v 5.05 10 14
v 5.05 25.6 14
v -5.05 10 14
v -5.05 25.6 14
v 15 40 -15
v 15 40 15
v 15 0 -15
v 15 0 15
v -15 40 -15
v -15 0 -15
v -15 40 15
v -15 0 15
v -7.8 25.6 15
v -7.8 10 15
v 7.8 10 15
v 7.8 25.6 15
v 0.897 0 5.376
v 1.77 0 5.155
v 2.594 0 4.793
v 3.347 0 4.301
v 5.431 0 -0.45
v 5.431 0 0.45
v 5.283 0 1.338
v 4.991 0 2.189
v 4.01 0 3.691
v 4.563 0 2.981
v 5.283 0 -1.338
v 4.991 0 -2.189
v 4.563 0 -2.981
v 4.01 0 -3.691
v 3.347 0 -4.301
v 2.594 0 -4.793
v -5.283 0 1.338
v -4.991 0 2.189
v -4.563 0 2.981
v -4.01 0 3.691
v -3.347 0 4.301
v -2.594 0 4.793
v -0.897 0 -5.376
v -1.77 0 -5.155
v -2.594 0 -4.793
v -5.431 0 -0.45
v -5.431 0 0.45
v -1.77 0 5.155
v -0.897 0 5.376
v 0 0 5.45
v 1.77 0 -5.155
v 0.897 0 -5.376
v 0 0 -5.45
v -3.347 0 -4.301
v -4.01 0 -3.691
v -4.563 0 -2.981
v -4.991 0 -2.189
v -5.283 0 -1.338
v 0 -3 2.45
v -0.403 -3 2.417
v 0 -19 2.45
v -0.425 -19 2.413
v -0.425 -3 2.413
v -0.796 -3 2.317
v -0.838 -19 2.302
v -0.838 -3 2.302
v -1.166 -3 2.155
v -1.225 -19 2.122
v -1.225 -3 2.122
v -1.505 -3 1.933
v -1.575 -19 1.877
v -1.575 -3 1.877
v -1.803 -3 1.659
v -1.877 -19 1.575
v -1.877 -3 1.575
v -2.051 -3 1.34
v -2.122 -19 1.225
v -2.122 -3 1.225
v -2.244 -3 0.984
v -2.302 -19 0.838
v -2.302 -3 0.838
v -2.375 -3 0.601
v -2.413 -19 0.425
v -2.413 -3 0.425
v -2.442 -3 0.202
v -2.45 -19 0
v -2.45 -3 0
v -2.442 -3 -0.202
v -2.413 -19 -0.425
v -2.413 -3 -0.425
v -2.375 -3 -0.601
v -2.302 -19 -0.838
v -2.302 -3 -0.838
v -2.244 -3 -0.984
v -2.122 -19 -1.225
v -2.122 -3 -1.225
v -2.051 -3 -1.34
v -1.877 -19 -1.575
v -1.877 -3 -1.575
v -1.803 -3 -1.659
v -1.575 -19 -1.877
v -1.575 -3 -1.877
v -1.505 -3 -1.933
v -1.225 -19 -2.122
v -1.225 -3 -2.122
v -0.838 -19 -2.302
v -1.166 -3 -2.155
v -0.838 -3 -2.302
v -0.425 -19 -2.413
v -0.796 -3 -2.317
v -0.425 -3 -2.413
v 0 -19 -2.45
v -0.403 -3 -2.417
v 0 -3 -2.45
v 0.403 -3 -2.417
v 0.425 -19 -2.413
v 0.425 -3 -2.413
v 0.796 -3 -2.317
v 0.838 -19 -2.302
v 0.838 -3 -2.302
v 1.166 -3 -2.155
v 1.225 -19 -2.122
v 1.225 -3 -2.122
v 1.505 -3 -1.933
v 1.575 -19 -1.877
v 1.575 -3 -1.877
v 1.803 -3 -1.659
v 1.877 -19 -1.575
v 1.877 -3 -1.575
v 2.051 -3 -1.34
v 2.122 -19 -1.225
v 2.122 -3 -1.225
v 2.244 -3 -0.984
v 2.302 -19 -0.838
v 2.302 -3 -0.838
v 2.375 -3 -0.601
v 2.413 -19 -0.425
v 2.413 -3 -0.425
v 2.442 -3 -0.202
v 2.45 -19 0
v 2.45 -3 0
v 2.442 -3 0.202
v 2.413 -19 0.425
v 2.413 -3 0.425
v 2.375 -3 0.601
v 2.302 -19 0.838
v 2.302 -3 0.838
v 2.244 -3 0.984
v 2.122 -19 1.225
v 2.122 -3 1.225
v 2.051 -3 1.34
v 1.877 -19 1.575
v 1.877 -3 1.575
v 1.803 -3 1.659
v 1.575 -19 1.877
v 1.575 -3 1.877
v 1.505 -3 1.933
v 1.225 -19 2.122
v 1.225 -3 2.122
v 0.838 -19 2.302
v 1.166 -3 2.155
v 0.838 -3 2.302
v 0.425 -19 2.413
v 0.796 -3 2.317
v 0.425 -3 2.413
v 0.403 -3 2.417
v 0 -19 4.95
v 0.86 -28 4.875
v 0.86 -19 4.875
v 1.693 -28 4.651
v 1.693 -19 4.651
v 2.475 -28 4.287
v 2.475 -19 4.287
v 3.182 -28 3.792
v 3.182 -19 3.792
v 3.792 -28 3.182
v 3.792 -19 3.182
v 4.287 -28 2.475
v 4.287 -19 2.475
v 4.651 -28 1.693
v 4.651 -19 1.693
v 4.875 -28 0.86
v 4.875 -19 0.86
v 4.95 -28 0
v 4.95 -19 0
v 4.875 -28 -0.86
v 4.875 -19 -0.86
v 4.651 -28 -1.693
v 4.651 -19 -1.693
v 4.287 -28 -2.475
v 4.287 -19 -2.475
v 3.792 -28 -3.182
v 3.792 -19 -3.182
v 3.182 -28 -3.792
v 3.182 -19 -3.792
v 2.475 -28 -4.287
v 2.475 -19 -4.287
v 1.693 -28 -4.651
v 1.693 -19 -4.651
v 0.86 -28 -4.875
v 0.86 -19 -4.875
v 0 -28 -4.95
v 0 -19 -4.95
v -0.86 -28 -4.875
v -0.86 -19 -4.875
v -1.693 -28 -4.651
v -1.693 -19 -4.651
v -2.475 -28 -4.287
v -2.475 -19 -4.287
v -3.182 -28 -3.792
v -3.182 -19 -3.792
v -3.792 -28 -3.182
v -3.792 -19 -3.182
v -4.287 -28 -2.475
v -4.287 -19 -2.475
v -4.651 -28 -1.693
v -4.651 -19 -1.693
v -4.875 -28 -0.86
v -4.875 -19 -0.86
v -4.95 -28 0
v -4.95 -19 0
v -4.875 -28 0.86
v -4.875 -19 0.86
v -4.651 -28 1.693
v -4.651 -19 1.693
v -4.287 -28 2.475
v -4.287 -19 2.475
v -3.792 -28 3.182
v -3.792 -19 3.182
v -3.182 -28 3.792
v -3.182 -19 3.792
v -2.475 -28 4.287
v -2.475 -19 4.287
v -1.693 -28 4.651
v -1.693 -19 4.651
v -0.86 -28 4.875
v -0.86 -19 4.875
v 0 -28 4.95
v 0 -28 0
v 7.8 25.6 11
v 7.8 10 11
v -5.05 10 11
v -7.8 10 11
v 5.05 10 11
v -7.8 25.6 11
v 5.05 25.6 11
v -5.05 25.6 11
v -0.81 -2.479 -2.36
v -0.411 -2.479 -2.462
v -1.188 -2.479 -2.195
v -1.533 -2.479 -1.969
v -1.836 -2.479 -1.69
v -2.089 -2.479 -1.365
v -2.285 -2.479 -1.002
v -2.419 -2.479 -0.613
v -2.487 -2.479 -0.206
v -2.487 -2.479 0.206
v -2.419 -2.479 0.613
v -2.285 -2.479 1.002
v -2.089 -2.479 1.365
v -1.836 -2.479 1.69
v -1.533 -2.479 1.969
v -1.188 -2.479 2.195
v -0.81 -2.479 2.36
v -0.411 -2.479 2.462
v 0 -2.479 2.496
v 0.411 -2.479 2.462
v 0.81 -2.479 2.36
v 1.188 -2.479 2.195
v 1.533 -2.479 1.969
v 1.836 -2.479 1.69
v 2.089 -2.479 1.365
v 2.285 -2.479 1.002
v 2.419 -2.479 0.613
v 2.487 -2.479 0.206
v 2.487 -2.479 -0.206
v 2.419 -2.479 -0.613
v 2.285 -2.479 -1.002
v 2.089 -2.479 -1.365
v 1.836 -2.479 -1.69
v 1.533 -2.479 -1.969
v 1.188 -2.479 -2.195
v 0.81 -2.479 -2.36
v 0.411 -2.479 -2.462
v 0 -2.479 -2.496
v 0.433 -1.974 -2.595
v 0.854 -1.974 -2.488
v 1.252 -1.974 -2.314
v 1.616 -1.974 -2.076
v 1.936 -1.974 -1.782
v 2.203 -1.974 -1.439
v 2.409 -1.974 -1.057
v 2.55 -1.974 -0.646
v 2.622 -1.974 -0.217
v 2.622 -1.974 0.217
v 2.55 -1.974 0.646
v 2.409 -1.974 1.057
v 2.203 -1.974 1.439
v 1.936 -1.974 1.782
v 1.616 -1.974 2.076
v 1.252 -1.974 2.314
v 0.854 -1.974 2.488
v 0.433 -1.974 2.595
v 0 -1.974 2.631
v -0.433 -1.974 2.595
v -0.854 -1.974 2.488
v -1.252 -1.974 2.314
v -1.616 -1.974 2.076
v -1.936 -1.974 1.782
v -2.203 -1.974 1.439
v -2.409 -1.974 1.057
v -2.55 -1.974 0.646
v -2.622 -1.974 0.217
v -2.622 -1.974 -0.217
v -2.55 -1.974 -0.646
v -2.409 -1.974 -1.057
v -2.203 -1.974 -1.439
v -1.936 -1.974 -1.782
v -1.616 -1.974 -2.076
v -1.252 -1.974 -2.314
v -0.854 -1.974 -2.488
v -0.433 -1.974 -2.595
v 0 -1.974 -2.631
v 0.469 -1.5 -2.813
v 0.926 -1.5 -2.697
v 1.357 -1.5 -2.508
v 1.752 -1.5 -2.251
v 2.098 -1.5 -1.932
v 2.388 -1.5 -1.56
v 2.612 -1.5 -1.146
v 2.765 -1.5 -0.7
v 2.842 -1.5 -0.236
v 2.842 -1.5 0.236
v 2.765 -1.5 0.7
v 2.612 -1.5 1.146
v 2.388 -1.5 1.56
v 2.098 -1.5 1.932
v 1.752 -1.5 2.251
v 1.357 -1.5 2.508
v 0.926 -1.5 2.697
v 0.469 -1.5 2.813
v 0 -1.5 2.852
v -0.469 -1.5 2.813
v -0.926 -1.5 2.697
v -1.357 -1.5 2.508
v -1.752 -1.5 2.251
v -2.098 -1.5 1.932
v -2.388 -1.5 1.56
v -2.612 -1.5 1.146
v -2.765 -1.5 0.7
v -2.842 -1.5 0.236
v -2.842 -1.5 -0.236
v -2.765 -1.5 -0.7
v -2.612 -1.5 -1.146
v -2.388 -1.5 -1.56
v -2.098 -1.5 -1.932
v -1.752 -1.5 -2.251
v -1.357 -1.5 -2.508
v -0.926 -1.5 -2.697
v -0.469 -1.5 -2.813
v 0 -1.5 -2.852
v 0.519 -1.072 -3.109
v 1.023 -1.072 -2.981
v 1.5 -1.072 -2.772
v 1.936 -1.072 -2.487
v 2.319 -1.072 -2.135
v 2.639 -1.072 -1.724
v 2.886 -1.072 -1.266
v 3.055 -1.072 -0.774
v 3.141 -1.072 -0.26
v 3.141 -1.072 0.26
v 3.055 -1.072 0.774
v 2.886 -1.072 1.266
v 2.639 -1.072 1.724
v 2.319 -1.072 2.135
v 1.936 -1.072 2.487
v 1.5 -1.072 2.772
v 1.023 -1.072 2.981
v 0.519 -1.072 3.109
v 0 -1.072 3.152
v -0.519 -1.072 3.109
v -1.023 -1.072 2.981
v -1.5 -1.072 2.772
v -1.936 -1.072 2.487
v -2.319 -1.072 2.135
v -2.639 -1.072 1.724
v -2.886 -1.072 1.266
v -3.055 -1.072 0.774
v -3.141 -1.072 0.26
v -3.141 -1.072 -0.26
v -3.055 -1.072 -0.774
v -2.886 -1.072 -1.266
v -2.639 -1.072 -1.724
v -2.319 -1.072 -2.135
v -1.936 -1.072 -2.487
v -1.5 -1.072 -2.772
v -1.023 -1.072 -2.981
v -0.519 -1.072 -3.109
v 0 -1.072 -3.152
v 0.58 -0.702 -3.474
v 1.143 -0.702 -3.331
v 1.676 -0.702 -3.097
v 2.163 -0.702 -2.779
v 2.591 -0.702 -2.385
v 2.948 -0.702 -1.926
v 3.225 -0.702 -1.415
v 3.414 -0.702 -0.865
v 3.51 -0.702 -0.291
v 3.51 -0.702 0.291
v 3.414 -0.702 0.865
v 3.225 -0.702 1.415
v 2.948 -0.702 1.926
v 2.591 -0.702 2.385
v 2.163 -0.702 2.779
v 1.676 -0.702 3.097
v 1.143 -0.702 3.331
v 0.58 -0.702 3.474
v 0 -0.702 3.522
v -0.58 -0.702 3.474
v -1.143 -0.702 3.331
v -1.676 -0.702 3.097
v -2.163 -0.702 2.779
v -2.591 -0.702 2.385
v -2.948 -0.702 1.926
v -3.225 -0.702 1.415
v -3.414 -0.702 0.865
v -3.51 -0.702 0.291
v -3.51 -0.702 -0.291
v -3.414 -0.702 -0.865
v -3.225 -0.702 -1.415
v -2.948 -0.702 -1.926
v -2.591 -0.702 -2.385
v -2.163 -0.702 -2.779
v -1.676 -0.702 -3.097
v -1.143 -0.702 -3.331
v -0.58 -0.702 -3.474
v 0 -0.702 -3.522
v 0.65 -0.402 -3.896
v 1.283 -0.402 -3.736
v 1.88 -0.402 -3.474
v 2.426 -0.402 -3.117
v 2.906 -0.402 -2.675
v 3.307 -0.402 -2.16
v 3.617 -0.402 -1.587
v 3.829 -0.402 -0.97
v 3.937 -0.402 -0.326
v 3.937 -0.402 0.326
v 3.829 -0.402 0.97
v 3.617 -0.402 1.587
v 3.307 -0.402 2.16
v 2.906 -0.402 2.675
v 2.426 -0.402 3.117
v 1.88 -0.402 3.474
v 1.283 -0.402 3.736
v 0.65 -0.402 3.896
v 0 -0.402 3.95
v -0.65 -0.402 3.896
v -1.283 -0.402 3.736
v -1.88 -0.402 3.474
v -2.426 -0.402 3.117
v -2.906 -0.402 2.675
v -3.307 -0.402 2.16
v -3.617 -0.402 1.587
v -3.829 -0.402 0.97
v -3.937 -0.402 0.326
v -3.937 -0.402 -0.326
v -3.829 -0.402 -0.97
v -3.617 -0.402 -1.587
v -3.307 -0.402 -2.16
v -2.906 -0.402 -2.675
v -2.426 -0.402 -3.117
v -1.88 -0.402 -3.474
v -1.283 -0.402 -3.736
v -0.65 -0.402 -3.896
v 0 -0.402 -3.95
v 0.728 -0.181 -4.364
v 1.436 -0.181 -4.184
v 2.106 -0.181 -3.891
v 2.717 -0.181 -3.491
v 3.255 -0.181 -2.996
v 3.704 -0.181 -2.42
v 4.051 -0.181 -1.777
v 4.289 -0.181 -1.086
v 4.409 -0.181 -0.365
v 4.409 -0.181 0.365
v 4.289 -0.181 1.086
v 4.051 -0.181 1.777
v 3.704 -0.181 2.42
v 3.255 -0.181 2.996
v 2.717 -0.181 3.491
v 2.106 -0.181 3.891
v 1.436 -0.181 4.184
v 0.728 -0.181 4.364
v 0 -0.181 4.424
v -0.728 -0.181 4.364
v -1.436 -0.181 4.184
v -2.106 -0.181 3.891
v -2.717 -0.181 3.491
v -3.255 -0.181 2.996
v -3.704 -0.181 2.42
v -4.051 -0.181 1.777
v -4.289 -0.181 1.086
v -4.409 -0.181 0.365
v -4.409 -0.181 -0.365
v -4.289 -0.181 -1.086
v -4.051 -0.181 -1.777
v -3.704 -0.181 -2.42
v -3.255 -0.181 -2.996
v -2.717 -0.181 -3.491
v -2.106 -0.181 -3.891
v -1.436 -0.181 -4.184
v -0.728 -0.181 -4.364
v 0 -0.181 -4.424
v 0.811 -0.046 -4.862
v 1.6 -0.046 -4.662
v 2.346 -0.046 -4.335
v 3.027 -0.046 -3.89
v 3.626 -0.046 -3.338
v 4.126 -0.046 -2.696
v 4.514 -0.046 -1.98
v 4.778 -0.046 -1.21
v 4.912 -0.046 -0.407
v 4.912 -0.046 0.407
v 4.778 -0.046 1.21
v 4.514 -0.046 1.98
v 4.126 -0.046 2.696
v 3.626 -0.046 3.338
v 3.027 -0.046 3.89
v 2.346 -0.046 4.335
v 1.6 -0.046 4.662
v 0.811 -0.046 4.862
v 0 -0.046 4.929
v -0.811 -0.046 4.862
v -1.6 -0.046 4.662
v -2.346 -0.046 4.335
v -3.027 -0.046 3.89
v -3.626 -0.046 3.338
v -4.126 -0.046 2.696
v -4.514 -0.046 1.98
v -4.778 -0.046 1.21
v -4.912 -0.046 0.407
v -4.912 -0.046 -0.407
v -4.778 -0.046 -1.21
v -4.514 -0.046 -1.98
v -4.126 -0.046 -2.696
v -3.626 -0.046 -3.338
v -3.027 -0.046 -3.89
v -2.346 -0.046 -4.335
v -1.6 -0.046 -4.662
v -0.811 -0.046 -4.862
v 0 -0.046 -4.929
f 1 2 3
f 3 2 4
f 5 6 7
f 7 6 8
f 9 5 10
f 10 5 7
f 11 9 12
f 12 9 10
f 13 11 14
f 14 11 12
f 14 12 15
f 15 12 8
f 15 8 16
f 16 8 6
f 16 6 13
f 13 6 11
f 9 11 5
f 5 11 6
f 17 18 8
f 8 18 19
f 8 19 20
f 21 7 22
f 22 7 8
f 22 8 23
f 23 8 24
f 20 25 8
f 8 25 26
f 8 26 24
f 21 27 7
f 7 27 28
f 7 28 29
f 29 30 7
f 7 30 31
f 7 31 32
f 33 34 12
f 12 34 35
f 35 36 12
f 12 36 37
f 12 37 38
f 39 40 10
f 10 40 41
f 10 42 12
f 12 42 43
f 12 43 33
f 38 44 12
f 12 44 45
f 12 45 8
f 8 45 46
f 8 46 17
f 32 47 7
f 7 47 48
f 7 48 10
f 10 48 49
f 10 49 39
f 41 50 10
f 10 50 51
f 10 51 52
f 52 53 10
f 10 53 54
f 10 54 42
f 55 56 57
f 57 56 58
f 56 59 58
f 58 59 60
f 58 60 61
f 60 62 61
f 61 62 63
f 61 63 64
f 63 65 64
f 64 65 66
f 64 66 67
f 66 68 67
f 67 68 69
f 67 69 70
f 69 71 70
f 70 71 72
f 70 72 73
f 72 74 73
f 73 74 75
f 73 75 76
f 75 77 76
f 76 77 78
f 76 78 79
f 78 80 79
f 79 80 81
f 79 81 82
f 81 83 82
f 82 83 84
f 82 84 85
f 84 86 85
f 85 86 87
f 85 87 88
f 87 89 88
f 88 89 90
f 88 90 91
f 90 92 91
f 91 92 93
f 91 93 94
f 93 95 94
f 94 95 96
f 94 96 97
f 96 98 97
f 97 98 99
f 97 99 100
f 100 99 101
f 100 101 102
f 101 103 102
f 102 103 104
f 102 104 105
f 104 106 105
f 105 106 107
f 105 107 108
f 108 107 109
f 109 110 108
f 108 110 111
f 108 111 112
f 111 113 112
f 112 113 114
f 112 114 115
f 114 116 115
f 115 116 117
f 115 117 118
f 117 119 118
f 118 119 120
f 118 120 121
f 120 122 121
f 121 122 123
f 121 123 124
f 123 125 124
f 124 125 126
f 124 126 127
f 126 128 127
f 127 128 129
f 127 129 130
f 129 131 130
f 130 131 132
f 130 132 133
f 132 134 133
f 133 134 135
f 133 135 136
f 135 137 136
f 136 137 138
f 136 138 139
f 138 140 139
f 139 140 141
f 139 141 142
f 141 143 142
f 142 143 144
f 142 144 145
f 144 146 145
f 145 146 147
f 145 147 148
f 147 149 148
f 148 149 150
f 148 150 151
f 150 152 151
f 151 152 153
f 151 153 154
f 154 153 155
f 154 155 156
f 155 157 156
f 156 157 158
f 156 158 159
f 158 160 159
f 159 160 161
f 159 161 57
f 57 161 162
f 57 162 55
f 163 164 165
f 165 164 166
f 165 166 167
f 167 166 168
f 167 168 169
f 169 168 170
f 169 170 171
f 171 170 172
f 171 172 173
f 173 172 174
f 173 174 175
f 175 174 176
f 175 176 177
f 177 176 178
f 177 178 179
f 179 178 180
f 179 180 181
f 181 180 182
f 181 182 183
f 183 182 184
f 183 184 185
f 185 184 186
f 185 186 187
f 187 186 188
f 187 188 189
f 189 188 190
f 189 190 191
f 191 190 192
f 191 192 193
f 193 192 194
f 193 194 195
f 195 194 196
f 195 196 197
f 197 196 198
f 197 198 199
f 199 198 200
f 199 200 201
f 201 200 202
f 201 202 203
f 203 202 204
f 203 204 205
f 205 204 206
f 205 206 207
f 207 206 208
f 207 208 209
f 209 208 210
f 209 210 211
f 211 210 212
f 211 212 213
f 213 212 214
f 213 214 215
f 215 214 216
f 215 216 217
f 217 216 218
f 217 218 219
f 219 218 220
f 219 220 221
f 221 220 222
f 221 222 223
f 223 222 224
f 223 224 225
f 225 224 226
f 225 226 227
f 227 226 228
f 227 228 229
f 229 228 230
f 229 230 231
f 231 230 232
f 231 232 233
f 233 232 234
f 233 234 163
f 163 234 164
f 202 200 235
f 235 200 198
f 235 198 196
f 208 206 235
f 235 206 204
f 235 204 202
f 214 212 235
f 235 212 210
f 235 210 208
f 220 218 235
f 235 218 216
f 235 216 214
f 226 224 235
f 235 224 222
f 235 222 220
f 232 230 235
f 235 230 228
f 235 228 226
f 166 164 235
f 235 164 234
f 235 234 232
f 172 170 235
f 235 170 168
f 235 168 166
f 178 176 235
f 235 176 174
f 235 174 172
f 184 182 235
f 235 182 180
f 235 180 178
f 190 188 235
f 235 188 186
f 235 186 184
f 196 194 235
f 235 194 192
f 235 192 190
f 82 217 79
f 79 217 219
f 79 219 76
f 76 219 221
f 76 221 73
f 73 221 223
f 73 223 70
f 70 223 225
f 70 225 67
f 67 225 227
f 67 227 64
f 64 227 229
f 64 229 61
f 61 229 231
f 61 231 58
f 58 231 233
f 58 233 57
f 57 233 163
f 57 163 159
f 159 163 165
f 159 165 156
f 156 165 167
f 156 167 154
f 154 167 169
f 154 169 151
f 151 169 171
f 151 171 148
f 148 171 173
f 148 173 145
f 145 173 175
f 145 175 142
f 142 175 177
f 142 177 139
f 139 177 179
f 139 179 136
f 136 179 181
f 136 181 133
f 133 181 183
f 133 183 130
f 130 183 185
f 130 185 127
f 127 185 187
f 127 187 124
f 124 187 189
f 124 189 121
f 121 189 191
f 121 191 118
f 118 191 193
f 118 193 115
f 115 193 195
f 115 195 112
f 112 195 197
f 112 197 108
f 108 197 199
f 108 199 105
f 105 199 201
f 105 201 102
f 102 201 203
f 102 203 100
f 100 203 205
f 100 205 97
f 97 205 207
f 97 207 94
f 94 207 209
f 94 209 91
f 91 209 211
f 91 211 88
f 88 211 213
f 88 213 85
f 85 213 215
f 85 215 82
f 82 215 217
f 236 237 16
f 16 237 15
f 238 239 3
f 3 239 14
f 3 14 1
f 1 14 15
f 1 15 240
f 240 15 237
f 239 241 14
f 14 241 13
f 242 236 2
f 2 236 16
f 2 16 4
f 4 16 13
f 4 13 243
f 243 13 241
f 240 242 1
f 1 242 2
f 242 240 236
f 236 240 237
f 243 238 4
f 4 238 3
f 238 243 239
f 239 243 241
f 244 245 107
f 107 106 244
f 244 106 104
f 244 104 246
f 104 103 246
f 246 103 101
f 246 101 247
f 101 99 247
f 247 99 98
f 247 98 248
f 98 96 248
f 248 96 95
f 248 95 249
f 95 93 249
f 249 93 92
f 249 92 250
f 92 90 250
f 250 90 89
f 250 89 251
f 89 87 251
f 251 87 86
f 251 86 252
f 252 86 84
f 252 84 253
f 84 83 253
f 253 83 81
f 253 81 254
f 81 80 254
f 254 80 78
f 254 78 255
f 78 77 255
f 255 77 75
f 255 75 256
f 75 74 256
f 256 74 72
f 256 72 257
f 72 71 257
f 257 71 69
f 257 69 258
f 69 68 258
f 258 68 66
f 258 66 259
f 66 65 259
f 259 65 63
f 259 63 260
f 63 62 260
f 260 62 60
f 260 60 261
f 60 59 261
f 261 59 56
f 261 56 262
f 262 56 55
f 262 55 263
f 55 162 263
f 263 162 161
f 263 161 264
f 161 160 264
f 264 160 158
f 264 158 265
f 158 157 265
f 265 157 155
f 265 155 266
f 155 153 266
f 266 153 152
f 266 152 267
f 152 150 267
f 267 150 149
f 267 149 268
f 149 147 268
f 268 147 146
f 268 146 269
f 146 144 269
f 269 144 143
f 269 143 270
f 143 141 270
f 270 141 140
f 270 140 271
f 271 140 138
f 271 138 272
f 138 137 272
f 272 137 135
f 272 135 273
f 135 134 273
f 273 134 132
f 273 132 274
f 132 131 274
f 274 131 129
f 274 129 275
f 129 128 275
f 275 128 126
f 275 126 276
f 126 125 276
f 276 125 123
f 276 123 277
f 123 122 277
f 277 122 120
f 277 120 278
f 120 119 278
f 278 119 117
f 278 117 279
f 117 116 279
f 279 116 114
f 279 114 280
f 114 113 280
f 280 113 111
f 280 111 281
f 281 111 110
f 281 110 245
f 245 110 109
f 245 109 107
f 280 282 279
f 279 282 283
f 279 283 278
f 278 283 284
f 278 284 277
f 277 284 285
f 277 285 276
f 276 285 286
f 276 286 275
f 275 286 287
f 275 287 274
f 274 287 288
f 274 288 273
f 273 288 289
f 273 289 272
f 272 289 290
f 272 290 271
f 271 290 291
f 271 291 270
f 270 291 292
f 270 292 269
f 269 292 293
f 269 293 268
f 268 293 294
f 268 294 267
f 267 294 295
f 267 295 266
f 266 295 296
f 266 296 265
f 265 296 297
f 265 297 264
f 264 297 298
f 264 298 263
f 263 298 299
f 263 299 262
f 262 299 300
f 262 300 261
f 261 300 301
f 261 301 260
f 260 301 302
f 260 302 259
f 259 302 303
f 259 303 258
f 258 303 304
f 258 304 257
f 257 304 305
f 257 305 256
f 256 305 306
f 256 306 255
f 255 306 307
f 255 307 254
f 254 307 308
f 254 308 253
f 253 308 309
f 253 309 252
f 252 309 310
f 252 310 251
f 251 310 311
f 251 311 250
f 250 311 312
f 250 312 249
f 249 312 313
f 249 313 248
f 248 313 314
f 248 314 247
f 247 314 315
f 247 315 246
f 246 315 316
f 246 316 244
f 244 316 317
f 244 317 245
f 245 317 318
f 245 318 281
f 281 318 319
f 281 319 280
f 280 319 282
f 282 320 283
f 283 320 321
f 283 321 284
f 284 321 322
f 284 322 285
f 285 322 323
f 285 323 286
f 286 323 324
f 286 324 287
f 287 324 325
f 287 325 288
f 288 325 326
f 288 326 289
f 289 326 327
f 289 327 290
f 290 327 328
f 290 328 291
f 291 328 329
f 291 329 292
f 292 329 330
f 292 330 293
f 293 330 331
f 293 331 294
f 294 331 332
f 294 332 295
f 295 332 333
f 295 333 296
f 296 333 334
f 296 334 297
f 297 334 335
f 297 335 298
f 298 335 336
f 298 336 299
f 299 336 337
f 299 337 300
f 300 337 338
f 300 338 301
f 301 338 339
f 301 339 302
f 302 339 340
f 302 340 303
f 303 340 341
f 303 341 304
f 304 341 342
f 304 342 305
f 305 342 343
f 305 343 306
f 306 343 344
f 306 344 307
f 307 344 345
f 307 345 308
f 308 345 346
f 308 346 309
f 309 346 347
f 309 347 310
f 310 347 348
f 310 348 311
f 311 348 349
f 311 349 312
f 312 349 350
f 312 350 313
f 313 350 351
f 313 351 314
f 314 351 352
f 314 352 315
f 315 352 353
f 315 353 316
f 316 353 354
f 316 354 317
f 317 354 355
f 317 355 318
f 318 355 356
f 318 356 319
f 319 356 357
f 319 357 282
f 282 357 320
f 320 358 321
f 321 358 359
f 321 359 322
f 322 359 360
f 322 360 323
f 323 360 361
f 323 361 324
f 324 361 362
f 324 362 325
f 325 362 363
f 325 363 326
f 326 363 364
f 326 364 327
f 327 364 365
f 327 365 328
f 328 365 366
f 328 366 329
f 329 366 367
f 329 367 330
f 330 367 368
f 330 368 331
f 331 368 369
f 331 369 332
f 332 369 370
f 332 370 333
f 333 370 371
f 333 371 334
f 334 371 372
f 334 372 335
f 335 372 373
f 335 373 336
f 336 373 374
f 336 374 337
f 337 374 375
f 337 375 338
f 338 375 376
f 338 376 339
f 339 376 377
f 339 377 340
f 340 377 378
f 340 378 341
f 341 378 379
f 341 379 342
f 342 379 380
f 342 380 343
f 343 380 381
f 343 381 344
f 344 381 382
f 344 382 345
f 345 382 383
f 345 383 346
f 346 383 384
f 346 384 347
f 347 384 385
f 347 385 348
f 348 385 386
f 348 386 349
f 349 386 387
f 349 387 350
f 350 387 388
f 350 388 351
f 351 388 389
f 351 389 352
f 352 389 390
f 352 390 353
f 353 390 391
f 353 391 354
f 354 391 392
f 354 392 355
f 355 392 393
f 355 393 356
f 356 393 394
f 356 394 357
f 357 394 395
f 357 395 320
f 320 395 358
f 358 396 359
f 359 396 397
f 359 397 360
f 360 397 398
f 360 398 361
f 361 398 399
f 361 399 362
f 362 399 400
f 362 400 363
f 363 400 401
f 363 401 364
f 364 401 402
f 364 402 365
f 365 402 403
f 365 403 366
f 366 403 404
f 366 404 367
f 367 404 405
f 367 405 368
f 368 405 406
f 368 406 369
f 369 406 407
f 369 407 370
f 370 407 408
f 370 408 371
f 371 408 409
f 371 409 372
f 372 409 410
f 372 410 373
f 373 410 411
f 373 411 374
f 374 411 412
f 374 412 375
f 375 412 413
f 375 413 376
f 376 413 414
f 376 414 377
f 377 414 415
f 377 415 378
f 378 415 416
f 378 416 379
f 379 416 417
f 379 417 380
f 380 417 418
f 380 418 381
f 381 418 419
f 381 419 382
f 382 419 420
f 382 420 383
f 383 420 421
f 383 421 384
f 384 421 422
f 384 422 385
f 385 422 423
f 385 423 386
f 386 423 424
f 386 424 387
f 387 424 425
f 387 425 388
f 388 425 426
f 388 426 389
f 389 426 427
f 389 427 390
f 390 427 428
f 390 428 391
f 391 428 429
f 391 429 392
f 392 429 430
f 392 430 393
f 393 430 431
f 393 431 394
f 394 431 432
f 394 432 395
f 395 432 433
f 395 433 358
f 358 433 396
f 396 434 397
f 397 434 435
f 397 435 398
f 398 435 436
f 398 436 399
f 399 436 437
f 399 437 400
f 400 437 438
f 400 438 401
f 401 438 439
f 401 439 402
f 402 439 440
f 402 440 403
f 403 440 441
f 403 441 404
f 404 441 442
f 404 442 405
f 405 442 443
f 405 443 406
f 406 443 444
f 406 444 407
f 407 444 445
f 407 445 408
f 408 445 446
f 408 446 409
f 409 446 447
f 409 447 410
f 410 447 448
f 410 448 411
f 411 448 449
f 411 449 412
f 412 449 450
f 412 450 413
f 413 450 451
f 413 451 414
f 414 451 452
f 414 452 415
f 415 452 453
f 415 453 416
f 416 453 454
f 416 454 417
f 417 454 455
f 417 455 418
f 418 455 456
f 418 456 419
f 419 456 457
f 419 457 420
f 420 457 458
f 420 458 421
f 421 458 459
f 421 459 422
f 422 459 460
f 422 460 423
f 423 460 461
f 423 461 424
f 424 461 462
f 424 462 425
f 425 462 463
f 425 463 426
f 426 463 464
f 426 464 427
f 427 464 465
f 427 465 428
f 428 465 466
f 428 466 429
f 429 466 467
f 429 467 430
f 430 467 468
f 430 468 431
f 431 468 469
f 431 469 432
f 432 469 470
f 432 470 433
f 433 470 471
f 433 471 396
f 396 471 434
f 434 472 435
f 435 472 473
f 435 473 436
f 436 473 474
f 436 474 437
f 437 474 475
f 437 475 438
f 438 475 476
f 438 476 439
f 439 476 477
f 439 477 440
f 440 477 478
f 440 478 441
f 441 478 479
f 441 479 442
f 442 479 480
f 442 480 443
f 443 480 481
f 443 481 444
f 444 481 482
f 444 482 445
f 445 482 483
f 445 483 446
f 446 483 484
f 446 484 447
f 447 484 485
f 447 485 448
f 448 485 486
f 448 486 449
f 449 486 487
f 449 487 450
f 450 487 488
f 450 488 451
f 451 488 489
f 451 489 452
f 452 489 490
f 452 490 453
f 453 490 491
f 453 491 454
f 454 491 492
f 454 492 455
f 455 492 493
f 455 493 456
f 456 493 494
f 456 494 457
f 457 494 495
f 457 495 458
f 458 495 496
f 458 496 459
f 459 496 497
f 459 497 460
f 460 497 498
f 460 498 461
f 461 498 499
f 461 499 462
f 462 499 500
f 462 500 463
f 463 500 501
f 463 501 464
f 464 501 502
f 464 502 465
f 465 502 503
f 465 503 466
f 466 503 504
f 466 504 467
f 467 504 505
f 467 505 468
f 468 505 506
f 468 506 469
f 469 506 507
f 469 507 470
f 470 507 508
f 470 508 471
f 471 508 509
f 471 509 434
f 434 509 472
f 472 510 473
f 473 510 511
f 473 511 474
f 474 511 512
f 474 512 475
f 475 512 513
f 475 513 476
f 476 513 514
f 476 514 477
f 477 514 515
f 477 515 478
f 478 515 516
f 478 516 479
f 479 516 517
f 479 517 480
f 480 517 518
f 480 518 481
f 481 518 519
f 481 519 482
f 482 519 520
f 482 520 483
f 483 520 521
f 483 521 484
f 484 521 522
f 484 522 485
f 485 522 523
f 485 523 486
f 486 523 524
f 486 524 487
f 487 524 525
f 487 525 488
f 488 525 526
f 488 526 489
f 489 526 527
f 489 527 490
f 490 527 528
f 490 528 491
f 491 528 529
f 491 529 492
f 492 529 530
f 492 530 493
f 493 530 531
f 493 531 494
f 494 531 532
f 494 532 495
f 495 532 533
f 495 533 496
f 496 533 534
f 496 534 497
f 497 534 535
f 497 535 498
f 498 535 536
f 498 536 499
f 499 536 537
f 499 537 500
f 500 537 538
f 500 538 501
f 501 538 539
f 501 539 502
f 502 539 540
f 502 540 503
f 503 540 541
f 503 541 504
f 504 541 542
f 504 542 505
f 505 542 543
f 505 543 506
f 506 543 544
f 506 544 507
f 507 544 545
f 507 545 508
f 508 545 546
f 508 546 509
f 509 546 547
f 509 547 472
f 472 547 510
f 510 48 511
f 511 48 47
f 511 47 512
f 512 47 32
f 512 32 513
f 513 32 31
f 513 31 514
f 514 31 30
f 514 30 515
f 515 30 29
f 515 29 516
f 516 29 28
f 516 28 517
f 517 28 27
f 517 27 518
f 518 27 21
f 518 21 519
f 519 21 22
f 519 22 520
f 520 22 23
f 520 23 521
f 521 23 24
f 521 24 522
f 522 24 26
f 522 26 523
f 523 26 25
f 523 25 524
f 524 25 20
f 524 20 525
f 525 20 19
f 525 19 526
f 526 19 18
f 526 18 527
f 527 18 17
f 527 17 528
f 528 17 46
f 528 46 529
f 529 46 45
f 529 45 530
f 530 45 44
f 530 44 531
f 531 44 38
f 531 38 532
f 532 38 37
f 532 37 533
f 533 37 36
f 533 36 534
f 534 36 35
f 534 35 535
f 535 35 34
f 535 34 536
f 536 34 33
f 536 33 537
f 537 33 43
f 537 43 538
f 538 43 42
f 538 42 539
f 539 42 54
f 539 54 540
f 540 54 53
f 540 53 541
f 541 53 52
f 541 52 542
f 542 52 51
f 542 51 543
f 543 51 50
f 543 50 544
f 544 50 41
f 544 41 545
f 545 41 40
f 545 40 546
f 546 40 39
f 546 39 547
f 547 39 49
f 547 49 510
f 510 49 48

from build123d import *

# Parameters (mm, degrees)
SKETCH_1_W          = 30
SKETCH_1_H          = 30
EXTRUDE_1_DEPTH     = 40
SKETCH_2_R          = 2.45
EXTRUDE_2_DEPTH     = 19
SKETCH_3_R          = 4.95
EXTRUDE_3_DEPTH     = 9
SKETCH_4_W          = 15.6
SKETCH_4_H          = 15.6
CUT_EXTRUDE_1_DEPTH = 1
SKETCH_5_W          = 2.75
SKETCH_5_H          = 15.6
CUT_EXTRUDE_2_DEPTH = 3
FILLET_1_R          = 3


with BuildPart() as part:
    # 草图1 → 凸台-拉伸1 (new body)
    with BuildSketch(Plane(origin=(0, 0, 0), x_dir=(1, 0, 0), z_dir=(0, 1, 0))):
        Rectangle(SKETCH_1_W, SKETCH_1_H)
    extrude(amount=EXTRUDE_1_DEPTH)

    # 草图2 → 凸台-拉伸2 (add)
    with BuildSketch(Plane.XZ):
        with Locations(Location((0, 0, 0), (0, 0, 270))):
            Circle(SKETCH_2_R)
    extrude(amount=EXTRUDE_2_DEPTH)

    # 草图3 → 凸台-拉伸3 (add)
    with BuildSketch(Plane.XZ.offset(19)):
        with Locations(Location((0, 0, 0), (0, 0, 270))):
            Circle(SKETCH_3_R)
    extrude(amount=EXTRUDE_3_DEPTH)

    # 草图4 → 切除-拉伸1 (cut)
    with BuildSketch(Plane.XY.offset(15)):
        with Locations((0, 17.8)):
            Rectangle(SKETCH_4_W, SKETCH_4_H)
    extrude(amount=-CUT_EXTRUDE_1_DEPTH, mode=Mode.SUBTRACT)

    # 草图5 → 切除-拉伸2 (cut)
    with BuildSketch(Plane.XY.offset(14)):
        with Locations((-6.425, 17.8)):
            Rectangle(SKETCH_5_W, SKETCH_5_H)
        with Locations((6.425, 17.8)):
            Rectangle(SKETCH_5_W, SKETCH_5_H)
    extrude(amount=-CUT_EXTRUDE_2_DEPTH, mode=Mode.SUBTRACT)

    # 圆角1
    fillet_1_edges = [part.edges().sort_by_distance(p)[0] for p in [
        (0, 0, 2.45),
    ]]
    fillet(fillet_1_edges, radius=FILLET_1_R)


solid = part.part
